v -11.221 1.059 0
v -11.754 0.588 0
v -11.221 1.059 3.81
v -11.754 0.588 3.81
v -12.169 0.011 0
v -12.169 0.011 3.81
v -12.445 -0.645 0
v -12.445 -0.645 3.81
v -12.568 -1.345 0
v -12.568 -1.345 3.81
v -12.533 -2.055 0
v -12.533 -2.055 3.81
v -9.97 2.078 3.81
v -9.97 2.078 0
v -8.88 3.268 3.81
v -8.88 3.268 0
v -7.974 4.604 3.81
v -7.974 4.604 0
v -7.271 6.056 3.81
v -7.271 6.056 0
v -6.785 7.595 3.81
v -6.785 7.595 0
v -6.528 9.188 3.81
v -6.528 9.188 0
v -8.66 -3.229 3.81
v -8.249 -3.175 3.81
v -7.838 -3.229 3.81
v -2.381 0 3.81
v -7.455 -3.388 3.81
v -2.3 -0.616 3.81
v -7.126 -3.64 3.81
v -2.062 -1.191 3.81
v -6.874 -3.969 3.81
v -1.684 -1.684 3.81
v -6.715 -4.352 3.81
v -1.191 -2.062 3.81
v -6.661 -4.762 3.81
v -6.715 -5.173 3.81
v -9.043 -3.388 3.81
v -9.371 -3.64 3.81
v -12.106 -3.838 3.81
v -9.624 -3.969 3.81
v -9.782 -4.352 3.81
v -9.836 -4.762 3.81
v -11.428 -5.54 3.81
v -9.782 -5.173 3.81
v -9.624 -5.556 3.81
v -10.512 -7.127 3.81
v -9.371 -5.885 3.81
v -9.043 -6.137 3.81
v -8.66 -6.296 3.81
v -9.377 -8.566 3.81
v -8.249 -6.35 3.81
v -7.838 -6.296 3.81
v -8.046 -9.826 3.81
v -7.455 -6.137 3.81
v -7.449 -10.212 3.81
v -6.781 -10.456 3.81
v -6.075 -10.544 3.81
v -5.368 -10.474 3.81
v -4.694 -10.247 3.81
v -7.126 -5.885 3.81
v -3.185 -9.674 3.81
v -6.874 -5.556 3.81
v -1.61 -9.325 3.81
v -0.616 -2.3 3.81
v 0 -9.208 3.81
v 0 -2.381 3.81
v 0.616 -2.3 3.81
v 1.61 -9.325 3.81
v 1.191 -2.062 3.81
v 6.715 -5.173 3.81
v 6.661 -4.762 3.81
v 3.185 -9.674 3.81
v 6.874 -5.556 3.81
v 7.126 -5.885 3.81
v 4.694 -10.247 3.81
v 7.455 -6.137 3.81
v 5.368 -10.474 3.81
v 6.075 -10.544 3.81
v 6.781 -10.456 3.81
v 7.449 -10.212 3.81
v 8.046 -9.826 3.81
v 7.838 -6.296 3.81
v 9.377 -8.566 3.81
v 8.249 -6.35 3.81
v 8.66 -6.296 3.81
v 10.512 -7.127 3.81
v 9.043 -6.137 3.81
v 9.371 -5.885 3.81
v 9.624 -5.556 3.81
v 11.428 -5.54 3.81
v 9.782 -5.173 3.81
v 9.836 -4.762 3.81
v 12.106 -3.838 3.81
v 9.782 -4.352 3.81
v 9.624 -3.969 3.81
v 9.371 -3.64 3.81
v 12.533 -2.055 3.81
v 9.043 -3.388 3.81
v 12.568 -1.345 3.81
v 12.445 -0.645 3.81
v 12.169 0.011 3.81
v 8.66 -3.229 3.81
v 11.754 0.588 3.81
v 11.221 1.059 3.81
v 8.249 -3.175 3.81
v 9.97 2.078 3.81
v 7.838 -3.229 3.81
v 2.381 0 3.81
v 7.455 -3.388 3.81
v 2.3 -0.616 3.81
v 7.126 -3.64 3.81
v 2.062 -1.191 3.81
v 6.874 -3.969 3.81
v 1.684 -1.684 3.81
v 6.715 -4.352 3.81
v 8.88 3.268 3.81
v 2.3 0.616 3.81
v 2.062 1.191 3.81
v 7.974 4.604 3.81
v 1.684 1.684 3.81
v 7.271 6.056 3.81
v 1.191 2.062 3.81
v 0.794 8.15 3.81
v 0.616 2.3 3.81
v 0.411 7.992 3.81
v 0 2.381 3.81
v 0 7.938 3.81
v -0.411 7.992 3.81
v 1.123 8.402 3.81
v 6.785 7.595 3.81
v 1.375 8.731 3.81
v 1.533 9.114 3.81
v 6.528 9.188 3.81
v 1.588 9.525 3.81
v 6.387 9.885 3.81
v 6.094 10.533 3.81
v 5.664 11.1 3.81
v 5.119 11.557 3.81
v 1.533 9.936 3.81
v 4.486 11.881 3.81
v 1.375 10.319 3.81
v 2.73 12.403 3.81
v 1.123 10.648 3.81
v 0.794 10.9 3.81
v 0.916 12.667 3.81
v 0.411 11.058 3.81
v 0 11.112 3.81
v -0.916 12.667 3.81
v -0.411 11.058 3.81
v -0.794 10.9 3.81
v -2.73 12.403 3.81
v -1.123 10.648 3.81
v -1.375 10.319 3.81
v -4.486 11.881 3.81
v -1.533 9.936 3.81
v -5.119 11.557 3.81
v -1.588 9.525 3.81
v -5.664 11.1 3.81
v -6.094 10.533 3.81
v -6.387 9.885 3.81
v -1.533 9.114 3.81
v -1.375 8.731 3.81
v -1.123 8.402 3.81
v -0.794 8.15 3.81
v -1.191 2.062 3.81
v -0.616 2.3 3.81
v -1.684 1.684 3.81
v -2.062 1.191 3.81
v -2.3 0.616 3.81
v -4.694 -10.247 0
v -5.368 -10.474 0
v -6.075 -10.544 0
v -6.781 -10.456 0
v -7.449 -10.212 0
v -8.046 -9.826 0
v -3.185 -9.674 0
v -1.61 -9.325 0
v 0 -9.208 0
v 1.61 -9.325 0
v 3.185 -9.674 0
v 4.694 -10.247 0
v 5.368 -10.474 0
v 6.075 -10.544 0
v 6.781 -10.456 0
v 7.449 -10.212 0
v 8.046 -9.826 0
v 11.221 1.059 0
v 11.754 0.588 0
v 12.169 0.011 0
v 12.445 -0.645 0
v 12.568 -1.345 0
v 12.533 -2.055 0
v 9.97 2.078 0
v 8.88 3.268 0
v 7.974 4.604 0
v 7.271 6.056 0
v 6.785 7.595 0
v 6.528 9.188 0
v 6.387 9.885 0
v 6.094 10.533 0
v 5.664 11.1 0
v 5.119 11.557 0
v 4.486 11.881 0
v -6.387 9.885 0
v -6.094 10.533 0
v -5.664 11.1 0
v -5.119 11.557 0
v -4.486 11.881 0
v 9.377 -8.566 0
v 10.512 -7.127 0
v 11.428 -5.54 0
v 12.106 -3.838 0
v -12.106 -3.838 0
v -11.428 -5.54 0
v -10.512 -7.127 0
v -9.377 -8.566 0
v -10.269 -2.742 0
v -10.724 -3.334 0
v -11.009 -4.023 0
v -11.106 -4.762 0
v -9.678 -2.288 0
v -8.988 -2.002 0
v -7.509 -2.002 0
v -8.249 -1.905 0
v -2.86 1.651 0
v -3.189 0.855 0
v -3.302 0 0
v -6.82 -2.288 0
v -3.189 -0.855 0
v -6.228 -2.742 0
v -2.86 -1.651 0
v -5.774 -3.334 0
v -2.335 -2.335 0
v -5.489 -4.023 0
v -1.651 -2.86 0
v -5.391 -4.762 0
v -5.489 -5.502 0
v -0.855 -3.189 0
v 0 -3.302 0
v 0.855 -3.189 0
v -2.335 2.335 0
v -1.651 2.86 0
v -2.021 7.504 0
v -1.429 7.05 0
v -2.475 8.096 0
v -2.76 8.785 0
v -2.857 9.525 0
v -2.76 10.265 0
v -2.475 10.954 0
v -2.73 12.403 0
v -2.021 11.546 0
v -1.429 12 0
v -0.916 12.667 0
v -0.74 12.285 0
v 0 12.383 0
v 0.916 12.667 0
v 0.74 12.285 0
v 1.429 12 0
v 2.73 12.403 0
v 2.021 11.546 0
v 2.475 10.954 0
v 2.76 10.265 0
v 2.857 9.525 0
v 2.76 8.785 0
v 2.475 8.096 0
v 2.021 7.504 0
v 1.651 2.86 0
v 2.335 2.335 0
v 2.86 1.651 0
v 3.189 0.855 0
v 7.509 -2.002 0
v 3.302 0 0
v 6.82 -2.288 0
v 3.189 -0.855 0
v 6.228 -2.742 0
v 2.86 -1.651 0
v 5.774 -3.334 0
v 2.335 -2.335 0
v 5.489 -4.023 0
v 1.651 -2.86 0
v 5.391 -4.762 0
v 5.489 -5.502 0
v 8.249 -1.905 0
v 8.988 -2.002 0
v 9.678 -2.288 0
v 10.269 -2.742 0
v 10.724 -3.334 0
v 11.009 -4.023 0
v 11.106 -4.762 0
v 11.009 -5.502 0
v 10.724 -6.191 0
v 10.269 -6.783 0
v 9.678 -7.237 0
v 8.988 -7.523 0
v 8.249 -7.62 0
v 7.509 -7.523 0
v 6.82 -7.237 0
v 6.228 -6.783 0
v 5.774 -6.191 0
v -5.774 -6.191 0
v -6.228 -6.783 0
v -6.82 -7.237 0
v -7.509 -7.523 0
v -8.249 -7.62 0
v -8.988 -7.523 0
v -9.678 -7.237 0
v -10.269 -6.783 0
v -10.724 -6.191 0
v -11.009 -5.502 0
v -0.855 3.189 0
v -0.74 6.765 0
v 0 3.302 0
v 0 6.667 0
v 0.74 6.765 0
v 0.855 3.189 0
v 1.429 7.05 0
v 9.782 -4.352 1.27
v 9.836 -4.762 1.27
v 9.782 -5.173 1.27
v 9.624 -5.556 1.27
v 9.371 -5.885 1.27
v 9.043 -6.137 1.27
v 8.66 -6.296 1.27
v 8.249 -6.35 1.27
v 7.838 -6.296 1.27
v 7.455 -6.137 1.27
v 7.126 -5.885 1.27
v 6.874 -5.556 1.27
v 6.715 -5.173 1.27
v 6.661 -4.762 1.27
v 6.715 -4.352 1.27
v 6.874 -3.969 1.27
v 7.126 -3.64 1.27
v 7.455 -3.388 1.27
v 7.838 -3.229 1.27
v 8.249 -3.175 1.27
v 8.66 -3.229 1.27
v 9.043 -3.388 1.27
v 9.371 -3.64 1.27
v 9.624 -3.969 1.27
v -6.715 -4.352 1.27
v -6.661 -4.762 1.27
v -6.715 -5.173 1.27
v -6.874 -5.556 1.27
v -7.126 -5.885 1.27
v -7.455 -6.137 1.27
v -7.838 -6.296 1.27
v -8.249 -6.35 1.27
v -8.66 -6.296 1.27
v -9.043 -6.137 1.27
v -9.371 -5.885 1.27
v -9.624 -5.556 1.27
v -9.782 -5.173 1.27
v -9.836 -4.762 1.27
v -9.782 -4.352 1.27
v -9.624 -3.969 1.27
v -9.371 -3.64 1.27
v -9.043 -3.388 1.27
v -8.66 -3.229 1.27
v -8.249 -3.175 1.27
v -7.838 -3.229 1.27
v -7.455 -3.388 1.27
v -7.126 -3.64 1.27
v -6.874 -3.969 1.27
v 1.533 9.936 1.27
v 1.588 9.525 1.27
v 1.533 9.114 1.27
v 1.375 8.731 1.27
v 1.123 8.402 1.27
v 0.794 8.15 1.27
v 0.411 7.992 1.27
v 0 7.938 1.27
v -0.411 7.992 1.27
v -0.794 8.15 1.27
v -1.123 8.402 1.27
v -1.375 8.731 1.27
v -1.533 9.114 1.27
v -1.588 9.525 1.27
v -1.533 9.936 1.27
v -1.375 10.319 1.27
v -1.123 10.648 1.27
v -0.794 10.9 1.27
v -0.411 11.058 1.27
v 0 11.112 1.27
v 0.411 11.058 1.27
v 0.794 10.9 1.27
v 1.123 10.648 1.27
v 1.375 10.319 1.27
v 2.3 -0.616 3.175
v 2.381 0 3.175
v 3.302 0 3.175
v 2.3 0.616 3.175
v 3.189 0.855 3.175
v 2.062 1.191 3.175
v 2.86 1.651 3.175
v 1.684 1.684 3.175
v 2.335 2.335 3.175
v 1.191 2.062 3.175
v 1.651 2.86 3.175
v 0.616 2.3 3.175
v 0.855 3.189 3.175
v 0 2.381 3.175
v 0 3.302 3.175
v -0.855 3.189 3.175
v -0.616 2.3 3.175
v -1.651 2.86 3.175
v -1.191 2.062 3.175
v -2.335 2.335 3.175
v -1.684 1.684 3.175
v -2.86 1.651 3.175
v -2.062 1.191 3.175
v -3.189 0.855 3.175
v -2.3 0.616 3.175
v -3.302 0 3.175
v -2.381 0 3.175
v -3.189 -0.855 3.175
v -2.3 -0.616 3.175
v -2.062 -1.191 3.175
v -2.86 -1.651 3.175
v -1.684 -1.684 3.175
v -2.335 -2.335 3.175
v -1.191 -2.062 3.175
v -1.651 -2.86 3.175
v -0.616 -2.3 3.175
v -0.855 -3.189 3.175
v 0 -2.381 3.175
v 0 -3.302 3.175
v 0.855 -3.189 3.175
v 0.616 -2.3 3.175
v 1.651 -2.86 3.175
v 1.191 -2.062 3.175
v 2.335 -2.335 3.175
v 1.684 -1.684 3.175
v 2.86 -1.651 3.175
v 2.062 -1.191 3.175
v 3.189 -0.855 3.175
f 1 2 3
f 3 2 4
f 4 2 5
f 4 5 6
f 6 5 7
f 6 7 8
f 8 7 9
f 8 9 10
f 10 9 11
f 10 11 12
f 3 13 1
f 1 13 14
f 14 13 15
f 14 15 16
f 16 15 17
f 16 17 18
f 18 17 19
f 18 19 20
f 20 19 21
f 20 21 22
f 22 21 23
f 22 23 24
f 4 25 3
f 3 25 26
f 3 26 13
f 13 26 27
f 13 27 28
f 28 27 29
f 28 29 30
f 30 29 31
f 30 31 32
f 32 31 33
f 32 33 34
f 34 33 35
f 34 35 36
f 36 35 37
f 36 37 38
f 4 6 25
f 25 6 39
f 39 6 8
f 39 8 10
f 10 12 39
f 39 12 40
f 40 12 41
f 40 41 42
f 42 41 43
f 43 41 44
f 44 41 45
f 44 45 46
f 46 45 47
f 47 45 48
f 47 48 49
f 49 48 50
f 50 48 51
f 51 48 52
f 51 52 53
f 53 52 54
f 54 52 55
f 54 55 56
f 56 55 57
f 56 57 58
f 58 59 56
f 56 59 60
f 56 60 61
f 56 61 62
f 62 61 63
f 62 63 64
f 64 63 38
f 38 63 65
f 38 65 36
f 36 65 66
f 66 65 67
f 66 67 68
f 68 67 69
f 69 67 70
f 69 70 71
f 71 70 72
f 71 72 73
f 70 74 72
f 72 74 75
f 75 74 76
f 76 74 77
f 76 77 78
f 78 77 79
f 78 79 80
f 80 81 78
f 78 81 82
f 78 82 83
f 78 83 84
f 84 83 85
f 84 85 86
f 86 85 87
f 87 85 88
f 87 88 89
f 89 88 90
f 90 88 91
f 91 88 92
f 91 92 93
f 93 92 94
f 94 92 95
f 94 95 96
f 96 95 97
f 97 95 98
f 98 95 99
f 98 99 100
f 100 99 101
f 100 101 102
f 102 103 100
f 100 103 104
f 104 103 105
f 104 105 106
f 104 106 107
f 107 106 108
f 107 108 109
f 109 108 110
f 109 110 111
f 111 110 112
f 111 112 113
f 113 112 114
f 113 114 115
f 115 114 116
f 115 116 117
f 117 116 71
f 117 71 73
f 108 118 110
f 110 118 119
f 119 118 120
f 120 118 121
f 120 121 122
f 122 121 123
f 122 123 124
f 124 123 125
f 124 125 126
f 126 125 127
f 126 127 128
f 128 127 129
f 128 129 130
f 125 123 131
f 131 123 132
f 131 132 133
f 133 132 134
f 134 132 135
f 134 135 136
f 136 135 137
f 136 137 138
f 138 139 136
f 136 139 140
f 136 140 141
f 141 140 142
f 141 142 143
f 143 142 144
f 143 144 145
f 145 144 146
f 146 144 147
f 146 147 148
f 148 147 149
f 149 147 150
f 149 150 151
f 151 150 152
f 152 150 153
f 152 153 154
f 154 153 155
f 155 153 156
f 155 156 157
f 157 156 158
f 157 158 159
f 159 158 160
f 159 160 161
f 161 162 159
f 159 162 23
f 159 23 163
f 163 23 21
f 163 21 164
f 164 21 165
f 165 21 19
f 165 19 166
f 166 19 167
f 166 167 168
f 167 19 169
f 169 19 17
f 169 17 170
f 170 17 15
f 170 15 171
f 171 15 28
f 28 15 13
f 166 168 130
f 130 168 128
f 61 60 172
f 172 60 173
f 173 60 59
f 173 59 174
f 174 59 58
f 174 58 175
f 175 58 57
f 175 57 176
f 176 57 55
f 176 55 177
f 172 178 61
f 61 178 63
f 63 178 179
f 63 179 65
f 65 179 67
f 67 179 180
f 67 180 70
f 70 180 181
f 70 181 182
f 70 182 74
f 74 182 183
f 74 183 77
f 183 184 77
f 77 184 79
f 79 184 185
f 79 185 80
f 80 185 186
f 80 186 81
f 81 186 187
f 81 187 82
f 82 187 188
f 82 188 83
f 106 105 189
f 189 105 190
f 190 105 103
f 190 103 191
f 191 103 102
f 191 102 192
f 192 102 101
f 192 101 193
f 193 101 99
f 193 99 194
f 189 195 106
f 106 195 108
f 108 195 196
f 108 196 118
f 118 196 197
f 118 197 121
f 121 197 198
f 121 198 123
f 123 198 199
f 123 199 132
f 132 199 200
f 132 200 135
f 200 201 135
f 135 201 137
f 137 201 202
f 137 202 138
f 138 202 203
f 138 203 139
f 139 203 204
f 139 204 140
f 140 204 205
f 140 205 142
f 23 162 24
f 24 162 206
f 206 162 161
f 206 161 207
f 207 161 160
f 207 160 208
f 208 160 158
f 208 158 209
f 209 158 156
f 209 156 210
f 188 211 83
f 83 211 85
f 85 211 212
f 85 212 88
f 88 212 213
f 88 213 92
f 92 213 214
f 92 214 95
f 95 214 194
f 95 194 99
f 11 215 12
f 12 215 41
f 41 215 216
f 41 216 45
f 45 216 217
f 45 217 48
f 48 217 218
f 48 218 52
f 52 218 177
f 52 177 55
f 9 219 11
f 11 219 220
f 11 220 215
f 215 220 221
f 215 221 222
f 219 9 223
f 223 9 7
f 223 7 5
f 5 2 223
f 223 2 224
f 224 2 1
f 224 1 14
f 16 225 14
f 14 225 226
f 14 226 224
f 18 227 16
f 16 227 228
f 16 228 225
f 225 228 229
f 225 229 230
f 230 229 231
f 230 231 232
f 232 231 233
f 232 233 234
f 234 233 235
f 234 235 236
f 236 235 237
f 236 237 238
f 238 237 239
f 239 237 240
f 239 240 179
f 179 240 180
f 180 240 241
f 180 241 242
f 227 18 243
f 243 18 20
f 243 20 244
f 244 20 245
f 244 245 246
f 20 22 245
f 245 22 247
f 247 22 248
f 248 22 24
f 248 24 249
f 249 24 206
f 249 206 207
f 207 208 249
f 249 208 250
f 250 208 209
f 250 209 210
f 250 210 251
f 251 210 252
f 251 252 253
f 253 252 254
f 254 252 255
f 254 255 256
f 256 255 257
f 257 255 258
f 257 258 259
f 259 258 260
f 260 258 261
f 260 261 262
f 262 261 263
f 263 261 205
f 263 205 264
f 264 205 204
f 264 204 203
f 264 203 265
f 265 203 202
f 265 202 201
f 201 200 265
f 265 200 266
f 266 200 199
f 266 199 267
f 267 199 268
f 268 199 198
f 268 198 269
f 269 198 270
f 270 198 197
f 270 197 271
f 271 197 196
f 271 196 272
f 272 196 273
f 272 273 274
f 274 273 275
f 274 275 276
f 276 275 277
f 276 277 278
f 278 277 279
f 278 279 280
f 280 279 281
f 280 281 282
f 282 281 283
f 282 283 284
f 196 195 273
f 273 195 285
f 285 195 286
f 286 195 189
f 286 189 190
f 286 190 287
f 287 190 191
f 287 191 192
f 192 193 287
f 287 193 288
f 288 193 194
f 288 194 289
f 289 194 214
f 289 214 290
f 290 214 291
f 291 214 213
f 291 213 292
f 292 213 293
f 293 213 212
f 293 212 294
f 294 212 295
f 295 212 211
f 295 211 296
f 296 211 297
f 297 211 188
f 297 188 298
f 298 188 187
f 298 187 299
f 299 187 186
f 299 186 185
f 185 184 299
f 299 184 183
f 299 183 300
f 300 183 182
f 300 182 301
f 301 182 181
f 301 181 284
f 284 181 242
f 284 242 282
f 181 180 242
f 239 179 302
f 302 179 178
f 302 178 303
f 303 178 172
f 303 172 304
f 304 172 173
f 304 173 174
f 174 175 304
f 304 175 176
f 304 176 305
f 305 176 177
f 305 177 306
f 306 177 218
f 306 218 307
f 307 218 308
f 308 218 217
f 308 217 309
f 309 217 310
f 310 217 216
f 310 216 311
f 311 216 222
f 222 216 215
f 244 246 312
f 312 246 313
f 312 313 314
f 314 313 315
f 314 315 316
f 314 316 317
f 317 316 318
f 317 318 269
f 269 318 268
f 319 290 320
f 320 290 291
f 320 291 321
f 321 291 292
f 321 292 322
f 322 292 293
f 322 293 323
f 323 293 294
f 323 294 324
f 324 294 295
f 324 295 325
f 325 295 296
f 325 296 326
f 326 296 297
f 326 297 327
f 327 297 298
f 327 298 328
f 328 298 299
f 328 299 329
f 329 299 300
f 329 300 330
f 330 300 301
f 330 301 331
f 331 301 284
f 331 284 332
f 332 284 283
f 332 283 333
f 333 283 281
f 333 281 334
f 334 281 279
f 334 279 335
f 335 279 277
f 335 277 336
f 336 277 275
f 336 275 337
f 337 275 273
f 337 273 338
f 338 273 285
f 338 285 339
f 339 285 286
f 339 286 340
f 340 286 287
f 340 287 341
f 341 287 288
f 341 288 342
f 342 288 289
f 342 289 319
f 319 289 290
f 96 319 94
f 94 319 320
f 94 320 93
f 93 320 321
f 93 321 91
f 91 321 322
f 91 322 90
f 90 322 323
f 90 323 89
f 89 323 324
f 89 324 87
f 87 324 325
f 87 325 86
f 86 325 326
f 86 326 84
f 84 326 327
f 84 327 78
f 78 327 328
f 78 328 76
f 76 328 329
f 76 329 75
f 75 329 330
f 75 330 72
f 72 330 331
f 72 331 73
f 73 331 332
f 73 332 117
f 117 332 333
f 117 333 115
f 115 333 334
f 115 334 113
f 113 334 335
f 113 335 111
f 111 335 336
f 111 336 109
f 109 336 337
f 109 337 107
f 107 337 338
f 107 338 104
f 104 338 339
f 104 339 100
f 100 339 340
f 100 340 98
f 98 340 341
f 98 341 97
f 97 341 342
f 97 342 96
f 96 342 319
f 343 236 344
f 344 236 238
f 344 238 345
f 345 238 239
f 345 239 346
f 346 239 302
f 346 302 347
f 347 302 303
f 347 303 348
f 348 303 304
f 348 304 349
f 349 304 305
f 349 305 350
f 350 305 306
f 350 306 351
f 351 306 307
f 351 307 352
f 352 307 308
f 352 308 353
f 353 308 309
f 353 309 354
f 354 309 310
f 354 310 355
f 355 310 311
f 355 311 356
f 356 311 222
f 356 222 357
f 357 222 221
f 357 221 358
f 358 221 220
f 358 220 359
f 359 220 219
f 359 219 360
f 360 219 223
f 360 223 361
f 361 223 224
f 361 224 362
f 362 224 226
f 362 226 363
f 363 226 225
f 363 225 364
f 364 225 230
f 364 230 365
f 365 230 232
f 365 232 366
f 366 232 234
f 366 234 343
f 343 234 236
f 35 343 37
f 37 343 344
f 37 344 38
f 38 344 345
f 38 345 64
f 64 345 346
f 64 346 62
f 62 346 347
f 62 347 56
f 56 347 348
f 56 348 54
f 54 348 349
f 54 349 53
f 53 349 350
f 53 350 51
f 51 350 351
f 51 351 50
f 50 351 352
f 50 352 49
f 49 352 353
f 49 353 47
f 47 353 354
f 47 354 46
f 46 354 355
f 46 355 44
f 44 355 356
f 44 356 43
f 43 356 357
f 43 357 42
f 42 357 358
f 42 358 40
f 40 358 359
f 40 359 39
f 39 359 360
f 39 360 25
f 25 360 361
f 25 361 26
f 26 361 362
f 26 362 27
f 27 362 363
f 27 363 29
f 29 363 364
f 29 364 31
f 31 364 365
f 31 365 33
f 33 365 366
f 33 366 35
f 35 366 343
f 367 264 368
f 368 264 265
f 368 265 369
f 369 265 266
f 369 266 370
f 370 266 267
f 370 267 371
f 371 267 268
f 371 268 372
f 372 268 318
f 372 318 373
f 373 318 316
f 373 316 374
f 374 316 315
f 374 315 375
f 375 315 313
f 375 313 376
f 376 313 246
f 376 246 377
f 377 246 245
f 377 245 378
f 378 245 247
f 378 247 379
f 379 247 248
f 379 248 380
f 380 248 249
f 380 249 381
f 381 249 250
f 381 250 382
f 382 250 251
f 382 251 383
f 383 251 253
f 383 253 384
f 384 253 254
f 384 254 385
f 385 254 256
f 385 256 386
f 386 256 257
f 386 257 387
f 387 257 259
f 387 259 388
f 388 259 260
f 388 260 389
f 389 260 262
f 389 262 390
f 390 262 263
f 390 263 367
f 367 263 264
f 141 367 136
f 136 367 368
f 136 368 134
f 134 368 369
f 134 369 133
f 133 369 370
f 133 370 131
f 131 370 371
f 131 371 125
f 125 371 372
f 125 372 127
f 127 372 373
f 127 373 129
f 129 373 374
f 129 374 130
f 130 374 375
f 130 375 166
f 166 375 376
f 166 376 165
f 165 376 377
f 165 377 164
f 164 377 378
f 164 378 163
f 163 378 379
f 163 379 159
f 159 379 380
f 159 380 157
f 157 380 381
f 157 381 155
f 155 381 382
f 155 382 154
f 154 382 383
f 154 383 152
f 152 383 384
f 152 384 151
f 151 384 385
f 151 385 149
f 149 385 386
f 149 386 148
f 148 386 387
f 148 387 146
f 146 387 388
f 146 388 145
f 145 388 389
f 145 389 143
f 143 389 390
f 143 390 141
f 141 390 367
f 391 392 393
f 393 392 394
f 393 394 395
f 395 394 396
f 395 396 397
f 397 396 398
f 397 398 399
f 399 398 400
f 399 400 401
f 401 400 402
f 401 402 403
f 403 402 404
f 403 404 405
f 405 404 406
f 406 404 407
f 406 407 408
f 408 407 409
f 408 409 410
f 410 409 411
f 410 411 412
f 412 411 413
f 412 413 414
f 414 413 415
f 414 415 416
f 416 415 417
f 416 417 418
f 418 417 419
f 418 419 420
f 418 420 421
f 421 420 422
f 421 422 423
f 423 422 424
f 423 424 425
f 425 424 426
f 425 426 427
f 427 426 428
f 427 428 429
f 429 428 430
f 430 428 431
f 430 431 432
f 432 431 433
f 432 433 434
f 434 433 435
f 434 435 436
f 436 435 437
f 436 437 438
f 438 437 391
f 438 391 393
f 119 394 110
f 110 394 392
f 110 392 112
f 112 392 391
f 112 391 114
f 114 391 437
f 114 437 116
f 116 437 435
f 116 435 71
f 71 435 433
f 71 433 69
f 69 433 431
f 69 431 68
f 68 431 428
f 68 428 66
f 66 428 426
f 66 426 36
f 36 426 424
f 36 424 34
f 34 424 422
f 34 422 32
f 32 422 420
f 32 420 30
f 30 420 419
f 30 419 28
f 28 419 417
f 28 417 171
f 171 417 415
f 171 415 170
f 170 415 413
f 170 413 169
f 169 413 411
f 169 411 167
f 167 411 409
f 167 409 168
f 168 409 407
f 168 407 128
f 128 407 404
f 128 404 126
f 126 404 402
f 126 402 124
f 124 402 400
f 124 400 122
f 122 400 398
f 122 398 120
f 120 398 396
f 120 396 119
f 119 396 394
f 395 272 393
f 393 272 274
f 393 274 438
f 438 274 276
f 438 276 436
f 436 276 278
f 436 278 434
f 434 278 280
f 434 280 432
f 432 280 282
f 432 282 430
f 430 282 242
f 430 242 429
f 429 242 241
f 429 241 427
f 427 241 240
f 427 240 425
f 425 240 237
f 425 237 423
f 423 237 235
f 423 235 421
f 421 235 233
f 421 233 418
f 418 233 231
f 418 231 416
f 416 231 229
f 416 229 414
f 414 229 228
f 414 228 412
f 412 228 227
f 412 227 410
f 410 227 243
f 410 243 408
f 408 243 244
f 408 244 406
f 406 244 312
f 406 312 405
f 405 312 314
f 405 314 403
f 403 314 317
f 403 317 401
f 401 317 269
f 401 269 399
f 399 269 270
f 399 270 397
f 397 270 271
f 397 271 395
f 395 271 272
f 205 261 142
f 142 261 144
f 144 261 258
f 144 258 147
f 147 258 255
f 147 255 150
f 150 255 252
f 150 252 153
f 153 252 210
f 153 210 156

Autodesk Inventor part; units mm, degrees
ref_plane "YZ Plane" through (0, 0, 0) normal (1, 0, 0) x (0, 1, 0)
ref_plane "XZ Plane" through (0, 0, 0) normal (0, 1, 0) x (-1, 0, 0)
ref_plane "XY Plane" through (0, 0, 0) normal (0, 0, 1) x (1, 0, 0)
sketch "Sketch1" plane through (0, 0, 0) normal (0, 0, 1) x (1, 0, 0)
  circle A0 centre (0, 0) radius 3.302
  line L0 (0, 0) -> (0, 9.525)
  circle A1 centre (0, 9.525) radius 1.5875
  circle A2 centre (-8.2489, -4.7625) radius 1.5875
  circle A3 centre (8.2489, -4.7625) radius 1.5875
  circle A4 centre (0, 0) radius 12.7
  dimension "d0" = 6.604
  dimension "d1" = 9.525
  dimension "d2" = 3.175
  dimension "d5" = 360
  dimension "d7" = 25.4
extrude "Extrusion1" add sketch "Sketch1" along normal blind 3.175
sketch "Sketch2" plane through (0, 0, 3.175) normal (0, 0, 1) x (1, 0, 0)
  circle A0 centre (0, 0) radius 3.302 projected
  circle A1 centre (8.2489, -4.7625) radius 1.5875 projected
  circle A2 centre (-8.2489, -4.7625) radius 1.5875 projected
  circle A3 centre (0, 9.525) radius 1.5875 projected
  circle A4 centre (0, 0) radius 12.7 projected
  circle A5 centre (0, 0) radius 2.3813
  dimension "d10" = 4.7625
extrude "Extrusion2" add sketch "Sketch2" along normal blind 0.635 contours A0 | A4
chamfer "Chamfer1" distance 1.27 angle 45 3 edges at (-1.5875, 9.525, 0) (-9.8364, -4.7625, 0) (6.6614, -4.7625, 0)
sketch "Sketch3" plane through (0, 0, 0) normal (0, 0, -1) x (-1, 0, 0)
  line L0 (0, 0) -> (17.5976, 10.16)
  line L1 (0, 0) -> (20.32, 0) construction
  circle A0 centre (17.5976, 10.16) radius 11.1125
  circle A1 centre (-17.5976, 10.16) radius 11.1125
  circle A2 centre (0, -20.32) radius 11.1125
  dimension "d16" = 20.32
  dimension "d17" = 30
  dimension "d18" = 22.225
  dimension "d21" = 360
extrude "Extrusion3" cut sketch "Sketch3" against normal blind 25.4
fillet "Fillet1" radius 3.175 6 edges at (-12.6986, 0.1857, 1.905) (-6.5101, 10.9045, 1.905) (12.6986, 0.1857, 1.905) (6.5101, 10.9045, 1.905) (6.1885, -11.0902, 1.905) (-6.1885, -11.0902, 1.905)
properties part number "spoolPinionBearingHolder" material "ABS Plastic"
